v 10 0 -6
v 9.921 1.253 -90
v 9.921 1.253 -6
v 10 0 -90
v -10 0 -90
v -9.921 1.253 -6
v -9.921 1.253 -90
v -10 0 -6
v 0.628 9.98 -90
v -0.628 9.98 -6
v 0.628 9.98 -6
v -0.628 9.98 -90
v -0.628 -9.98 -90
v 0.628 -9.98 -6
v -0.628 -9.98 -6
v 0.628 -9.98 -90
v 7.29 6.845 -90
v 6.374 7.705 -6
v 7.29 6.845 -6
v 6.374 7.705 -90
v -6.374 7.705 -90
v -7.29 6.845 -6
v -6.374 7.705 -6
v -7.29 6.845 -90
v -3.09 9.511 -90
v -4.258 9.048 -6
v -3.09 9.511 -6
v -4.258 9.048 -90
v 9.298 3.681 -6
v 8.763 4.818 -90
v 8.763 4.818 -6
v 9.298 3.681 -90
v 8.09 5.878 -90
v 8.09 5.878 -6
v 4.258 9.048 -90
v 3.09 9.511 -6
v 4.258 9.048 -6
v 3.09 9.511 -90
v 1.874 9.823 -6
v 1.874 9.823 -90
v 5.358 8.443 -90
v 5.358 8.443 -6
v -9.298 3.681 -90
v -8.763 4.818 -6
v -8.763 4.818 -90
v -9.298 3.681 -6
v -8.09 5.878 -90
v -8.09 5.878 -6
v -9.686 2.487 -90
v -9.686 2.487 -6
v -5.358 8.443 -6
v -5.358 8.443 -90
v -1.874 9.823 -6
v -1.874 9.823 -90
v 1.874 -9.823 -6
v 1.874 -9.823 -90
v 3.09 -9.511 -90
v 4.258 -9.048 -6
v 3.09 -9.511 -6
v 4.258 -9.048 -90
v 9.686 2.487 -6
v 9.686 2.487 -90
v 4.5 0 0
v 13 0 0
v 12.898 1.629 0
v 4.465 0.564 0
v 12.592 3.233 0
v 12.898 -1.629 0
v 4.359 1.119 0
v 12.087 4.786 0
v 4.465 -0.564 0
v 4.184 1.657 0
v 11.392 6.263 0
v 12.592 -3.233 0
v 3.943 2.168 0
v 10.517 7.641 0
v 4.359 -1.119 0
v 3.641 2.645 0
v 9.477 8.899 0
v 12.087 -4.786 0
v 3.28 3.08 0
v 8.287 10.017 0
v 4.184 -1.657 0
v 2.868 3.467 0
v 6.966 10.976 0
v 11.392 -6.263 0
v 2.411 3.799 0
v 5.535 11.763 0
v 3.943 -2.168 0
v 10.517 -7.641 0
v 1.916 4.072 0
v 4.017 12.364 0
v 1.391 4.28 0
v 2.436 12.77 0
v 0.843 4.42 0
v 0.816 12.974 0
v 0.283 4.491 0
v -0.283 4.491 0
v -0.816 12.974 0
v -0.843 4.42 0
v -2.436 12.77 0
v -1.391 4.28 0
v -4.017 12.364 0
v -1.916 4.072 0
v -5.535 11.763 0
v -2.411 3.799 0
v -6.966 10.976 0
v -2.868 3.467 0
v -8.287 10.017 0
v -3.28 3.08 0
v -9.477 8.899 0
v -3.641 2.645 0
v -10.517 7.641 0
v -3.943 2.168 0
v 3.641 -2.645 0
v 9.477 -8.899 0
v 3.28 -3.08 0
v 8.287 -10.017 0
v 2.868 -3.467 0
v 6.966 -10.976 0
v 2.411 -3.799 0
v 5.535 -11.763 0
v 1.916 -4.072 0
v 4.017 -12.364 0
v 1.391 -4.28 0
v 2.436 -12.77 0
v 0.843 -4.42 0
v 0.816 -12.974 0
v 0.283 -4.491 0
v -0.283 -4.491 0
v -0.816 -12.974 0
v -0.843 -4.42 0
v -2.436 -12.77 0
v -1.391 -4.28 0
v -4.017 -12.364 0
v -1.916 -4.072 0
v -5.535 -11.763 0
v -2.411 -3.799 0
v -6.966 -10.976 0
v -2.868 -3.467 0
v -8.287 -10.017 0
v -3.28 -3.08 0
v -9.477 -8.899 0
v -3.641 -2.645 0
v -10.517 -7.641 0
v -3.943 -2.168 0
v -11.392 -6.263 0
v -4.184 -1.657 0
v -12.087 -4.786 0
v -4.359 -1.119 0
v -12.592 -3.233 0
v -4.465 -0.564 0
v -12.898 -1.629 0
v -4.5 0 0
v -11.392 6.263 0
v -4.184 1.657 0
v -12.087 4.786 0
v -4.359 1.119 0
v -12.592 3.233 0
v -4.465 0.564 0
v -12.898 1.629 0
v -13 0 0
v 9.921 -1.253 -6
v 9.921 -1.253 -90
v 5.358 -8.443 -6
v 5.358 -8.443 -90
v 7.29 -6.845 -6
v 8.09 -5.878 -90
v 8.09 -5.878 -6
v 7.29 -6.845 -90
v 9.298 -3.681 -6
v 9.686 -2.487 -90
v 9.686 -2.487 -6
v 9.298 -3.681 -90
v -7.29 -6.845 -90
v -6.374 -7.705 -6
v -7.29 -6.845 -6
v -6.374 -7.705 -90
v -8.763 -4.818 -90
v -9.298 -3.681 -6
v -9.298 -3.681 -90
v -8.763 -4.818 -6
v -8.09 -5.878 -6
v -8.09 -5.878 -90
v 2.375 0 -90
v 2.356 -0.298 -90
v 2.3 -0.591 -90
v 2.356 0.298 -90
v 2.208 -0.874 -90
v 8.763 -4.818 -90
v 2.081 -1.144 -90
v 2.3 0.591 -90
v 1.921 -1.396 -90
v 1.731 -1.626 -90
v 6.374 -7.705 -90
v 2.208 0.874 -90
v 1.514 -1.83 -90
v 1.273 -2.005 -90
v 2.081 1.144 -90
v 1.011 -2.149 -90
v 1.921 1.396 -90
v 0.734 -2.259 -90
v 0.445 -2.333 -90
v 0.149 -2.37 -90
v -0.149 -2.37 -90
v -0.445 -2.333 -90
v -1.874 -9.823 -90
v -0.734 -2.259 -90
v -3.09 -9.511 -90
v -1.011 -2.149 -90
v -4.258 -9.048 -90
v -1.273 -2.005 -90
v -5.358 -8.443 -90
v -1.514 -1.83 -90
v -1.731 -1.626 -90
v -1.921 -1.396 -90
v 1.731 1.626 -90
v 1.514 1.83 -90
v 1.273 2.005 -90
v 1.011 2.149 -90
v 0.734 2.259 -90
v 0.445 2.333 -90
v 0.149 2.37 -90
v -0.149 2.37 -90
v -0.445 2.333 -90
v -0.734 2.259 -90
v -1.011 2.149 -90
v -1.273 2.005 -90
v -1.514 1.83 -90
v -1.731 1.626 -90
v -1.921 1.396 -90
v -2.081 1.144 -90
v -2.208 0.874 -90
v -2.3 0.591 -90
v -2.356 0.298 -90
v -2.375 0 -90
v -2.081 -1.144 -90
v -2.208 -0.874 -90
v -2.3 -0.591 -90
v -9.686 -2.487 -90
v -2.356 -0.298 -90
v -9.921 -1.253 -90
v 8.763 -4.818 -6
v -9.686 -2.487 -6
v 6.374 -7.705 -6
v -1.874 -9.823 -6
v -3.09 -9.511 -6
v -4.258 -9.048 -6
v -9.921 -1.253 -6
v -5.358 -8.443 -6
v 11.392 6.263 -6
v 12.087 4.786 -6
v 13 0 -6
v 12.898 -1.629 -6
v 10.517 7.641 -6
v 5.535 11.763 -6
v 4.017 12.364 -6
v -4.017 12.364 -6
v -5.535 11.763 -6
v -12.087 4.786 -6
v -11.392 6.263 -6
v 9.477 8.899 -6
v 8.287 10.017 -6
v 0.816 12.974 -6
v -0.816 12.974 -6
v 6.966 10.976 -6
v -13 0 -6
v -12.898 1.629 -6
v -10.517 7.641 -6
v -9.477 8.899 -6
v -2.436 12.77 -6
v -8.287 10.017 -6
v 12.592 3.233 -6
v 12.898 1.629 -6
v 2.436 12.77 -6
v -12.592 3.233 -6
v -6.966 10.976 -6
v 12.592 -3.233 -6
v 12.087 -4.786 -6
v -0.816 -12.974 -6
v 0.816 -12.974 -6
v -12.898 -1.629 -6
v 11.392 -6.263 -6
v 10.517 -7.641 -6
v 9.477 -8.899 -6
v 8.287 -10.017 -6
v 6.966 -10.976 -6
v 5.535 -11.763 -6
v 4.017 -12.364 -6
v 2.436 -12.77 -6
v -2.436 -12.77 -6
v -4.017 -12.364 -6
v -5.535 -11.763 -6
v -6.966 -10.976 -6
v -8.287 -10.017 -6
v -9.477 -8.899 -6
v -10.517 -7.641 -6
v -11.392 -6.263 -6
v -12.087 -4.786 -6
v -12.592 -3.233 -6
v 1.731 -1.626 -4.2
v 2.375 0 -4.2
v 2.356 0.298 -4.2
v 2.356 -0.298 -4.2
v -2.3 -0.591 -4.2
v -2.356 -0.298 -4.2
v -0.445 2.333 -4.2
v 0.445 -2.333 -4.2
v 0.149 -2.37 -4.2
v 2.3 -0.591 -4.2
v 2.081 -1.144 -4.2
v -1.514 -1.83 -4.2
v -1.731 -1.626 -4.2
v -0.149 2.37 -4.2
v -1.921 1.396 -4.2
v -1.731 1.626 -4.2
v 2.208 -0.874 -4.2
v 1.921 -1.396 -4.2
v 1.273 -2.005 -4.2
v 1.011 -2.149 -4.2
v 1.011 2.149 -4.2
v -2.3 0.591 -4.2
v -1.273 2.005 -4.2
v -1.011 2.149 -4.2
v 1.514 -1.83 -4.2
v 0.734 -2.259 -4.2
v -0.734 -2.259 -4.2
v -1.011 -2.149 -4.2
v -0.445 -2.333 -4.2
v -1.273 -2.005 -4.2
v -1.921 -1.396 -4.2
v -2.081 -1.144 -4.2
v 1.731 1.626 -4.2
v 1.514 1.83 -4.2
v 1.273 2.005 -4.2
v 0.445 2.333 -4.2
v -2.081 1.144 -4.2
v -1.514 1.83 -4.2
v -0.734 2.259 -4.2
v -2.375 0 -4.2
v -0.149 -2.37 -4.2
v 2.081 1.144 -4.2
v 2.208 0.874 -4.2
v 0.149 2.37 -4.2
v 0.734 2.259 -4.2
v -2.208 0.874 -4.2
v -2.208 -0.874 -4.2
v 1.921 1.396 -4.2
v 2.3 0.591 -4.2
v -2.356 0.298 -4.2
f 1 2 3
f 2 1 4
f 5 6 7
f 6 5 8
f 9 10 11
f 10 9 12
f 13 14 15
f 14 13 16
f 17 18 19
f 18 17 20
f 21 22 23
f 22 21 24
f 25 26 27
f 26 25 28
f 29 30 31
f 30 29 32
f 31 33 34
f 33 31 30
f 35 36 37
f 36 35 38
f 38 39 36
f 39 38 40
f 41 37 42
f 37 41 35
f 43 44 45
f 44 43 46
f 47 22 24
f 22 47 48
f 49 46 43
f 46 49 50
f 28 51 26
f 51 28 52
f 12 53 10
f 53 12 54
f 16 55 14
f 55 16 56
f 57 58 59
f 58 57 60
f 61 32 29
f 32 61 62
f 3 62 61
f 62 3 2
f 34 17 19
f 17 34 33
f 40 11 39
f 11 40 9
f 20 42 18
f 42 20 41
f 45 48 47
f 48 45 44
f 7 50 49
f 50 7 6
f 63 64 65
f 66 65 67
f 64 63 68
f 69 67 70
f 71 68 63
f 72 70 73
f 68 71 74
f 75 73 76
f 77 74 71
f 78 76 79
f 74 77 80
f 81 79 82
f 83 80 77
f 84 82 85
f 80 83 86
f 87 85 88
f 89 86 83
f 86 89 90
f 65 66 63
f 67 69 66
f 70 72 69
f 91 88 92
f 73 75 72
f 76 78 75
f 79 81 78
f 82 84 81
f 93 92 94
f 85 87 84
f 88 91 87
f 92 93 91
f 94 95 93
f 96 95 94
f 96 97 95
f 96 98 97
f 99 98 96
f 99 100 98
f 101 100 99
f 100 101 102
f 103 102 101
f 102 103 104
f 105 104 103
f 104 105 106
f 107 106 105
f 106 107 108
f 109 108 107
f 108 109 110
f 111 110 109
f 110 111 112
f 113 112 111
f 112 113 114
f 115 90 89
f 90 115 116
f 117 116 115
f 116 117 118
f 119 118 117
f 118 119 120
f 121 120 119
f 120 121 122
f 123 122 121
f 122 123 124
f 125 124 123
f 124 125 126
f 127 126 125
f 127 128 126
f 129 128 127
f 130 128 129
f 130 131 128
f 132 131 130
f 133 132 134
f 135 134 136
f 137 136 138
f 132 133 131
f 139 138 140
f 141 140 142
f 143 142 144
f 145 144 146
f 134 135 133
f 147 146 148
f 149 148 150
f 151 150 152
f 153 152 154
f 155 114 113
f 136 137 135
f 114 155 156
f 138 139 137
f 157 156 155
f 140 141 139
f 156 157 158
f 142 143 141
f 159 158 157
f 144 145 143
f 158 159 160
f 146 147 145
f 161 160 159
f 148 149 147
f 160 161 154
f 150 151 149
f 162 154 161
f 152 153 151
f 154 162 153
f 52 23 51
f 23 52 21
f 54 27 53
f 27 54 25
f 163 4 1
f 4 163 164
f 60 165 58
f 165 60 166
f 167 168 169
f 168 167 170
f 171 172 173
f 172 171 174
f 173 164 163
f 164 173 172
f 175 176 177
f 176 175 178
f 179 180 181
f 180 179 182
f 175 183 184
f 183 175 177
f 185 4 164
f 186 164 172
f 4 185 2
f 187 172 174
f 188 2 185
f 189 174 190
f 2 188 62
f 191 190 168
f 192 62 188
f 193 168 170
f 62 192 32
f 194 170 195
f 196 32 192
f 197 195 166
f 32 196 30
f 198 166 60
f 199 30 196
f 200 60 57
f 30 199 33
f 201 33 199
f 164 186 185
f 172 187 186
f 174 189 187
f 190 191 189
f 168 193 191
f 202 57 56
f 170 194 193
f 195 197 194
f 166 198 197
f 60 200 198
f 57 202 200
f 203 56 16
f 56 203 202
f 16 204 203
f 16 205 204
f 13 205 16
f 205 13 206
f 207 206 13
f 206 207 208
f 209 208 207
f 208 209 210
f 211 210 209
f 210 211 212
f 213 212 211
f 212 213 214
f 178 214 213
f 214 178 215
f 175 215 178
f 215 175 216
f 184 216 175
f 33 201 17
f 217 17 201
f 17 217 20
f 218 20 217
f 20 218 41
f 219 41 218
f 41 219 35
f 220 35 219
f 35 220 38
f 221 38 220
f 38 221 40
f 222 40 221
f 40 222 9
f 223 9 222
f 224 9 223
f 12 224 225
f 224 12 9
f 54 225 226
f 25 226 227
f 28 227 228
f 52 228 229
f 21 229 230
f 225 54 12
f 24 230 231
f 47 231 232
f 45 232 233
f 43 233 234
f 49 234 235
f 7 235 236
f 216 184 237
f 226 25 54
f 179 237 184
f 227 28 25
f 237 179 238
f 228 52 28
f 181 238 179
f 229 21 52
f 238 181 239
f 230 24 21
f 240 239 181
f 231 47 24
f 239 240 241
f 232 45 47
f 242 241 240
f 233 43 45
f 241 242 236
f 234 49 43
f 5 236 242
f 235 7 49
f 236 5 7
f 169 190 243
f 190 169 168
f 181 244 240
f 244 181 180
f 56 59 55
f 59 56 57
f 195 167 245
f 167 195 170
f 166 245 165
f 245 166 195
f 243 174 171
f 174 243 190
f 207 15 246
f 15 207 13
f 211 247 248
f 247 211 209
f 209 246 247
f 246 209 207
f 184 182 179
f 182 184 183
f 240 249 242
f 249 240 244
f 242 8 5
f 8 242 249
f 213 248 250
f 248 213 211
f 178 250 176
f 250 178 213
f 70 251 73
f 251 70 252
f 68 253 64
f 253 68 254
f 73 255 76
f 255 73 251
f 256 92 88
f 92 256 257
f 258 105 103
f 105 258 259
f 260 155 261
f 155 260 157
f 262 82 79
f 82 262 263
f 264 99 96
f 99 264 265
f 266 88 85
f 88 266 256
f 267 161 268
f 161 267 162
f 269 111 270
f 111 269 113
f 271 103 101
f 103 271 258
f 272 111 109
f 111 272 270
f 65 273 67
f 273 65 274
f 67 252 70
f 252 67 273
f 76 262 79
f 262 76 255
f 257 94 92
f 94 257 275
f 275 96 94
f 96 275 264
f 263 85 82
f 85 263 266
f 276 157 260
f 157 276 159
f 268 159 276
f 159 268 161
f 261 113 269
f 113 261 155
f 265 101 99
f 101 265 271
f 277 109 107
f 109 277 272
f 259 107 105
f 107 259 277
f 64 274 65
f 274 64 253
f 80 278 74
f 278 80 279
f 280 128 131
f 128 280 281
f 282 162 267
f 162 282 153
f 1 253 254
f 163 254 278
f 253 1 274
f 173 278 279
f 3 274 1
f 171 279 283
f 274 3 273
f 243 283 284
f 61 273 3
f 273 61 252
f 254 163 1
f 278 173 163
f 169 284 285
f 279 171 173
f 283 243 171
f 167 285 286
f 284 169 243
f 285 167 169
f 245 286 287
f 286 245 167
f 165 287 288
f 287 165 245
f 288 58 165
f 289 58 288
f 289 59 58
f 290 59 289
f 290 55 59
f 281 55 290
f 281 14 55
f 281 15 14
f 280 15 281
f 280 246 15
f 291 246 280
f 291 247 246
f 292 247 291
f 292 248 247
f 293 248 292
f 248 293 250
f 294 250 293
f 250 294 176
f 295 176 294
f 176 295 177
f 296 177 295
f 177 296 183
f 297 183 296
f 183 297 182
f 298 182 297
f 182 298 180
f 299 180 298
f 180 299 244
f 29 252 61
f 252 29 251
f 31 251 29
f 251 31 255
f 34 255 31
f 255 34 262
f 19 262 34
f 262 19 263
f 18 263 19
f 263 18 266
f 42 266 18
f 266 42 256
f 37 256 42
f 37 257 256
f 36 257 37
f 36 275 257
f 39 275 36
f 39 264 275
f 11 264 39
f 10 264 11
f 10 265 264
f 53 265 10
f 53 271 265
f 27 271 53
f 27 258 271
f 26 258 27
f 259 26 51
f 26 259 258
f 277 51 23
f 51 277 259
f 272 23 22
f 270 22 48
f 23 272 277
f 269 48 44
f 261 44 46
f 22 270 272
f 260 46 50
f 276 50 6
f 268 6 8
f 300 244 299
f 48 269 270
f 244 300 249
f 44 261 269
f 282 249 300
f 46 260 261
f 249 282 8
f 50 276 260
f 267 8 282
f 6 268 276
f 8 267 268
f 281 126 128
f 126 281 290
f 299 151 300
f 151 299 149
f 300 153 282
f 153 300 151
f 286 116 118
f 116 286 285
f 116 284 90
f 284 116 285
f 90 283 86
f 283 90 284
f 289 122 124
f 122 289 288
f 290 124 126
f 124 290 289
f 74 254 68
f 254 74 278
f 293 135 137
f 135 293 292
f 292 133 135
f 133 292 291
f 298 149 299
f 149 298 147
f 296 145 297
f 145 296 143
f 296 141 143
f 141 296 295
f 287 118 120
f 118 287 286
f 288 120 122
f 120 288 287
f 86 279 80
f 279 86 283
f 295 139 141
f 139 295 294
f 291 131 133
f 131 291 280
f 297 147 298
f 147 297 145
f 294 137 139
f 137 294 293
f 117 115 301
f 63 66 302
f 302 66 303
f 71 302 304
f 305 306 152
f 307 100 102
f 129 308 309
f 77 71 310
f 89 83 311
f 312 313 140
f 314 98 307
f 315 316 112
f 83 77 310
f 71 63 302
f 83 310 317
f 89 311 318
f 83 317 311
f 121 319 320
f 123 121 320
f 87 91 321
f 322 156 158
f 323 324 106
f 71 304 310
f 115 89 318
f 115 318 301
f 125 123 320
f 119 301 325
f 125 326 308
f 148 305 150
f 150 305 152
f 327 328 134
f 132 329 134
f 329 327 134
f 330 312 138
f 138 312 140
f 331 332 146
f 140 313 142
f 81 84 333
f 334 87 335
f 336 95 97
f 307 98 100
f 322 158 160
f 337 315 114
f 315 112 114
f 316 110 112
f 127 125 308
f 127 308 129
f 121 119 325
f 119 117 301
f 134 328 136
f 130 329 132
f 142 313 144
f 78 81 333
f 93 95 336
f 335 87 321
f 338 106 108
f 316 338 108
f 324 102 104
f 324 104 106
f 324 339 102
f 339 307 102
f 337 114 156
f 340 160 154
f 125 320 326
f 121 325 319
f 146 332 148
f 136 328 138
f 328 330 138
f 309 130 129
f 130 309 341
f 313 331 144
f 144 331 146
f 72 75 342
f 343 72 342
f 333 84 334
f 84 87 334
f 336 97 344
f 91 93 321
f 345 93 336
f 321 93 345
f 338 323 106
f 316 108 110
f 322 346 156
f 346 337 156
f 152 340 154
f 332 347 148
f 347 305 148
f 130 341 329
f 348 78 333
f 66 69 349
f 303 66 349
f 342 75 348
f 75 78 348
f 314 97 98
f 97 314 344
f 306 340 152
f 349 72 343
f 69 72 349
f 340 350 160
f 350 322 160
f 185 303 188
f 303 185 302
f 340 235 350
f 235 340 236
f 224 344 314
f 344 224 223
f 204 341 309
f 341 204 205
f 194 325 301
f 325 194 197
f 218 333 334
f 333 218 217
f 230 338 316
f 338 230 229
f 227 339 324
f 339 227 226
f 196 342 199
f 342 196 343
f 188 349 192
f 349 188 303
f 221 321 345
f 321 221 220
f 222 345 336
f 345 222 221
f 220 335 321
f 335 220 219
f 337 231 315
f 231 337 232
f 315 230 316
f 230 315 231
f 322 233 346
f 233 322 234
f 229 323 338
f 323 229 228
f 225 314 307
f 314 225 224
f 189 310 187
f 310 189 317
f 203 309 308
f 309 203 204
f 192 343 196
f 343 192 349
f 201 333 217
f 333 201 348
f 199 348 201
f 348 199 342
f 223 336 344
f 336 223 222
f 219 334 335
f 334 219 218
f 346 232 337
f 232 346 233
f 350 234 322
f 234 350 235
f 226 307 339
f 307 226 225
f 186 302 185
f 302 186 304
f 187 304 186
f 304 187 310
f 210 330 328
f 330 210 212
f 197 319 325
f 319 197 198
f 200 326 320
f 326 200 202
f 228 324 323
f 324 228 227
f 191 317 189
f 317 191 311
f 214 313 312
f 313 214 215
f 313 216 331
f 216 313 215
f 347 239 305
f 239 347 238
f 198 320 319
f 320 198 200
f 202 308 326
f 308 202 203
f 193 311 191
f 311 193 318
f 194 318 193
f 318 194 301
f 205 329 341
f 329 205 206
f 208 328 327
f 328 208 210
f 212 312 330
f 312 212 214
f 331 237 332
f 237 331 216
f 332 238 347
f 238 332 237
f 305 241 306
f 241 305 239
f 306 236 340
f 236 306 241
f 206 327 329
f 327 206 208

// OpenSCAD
$fn = 50;


difference() {
	union() {
		translate(v = [0, 0, -90.0000000000]) {
			cylinder(h = 90, r = 10.0000000000);
		}
		translate(v = [0, 0, -6.0000000000]) {
			cylinder(h = 6, r = 13.0000000000);
		}
	}
	union() {
		translate(v = [0, 0, 0]) {
			rotate(a = [0, 0, 0]) {
				difference() {
					union() {
						#translate(v = [0, 0, -90.0000000000]) {
							cylinder(h = 90, r = 2.2500000000);
						}
						#translate(v = [0, 0, -4.2000000000]) {
							cylinder(h = 4.2000000000, r = 10.0000000000, r1 = 2.3750000000, r2 = 4.5000000000);
						}
						#translate(v = [0, 0, -90.0000000000]) {
							cylinder(h = 90, r = 2.3750000000);
						}
						#translate(v = [0, 0, -90.0000000000]) {
							cylinder(h = 90, r = 2.2500000000);
						}
					}
					union();
				}
			}
		}
	}
}
